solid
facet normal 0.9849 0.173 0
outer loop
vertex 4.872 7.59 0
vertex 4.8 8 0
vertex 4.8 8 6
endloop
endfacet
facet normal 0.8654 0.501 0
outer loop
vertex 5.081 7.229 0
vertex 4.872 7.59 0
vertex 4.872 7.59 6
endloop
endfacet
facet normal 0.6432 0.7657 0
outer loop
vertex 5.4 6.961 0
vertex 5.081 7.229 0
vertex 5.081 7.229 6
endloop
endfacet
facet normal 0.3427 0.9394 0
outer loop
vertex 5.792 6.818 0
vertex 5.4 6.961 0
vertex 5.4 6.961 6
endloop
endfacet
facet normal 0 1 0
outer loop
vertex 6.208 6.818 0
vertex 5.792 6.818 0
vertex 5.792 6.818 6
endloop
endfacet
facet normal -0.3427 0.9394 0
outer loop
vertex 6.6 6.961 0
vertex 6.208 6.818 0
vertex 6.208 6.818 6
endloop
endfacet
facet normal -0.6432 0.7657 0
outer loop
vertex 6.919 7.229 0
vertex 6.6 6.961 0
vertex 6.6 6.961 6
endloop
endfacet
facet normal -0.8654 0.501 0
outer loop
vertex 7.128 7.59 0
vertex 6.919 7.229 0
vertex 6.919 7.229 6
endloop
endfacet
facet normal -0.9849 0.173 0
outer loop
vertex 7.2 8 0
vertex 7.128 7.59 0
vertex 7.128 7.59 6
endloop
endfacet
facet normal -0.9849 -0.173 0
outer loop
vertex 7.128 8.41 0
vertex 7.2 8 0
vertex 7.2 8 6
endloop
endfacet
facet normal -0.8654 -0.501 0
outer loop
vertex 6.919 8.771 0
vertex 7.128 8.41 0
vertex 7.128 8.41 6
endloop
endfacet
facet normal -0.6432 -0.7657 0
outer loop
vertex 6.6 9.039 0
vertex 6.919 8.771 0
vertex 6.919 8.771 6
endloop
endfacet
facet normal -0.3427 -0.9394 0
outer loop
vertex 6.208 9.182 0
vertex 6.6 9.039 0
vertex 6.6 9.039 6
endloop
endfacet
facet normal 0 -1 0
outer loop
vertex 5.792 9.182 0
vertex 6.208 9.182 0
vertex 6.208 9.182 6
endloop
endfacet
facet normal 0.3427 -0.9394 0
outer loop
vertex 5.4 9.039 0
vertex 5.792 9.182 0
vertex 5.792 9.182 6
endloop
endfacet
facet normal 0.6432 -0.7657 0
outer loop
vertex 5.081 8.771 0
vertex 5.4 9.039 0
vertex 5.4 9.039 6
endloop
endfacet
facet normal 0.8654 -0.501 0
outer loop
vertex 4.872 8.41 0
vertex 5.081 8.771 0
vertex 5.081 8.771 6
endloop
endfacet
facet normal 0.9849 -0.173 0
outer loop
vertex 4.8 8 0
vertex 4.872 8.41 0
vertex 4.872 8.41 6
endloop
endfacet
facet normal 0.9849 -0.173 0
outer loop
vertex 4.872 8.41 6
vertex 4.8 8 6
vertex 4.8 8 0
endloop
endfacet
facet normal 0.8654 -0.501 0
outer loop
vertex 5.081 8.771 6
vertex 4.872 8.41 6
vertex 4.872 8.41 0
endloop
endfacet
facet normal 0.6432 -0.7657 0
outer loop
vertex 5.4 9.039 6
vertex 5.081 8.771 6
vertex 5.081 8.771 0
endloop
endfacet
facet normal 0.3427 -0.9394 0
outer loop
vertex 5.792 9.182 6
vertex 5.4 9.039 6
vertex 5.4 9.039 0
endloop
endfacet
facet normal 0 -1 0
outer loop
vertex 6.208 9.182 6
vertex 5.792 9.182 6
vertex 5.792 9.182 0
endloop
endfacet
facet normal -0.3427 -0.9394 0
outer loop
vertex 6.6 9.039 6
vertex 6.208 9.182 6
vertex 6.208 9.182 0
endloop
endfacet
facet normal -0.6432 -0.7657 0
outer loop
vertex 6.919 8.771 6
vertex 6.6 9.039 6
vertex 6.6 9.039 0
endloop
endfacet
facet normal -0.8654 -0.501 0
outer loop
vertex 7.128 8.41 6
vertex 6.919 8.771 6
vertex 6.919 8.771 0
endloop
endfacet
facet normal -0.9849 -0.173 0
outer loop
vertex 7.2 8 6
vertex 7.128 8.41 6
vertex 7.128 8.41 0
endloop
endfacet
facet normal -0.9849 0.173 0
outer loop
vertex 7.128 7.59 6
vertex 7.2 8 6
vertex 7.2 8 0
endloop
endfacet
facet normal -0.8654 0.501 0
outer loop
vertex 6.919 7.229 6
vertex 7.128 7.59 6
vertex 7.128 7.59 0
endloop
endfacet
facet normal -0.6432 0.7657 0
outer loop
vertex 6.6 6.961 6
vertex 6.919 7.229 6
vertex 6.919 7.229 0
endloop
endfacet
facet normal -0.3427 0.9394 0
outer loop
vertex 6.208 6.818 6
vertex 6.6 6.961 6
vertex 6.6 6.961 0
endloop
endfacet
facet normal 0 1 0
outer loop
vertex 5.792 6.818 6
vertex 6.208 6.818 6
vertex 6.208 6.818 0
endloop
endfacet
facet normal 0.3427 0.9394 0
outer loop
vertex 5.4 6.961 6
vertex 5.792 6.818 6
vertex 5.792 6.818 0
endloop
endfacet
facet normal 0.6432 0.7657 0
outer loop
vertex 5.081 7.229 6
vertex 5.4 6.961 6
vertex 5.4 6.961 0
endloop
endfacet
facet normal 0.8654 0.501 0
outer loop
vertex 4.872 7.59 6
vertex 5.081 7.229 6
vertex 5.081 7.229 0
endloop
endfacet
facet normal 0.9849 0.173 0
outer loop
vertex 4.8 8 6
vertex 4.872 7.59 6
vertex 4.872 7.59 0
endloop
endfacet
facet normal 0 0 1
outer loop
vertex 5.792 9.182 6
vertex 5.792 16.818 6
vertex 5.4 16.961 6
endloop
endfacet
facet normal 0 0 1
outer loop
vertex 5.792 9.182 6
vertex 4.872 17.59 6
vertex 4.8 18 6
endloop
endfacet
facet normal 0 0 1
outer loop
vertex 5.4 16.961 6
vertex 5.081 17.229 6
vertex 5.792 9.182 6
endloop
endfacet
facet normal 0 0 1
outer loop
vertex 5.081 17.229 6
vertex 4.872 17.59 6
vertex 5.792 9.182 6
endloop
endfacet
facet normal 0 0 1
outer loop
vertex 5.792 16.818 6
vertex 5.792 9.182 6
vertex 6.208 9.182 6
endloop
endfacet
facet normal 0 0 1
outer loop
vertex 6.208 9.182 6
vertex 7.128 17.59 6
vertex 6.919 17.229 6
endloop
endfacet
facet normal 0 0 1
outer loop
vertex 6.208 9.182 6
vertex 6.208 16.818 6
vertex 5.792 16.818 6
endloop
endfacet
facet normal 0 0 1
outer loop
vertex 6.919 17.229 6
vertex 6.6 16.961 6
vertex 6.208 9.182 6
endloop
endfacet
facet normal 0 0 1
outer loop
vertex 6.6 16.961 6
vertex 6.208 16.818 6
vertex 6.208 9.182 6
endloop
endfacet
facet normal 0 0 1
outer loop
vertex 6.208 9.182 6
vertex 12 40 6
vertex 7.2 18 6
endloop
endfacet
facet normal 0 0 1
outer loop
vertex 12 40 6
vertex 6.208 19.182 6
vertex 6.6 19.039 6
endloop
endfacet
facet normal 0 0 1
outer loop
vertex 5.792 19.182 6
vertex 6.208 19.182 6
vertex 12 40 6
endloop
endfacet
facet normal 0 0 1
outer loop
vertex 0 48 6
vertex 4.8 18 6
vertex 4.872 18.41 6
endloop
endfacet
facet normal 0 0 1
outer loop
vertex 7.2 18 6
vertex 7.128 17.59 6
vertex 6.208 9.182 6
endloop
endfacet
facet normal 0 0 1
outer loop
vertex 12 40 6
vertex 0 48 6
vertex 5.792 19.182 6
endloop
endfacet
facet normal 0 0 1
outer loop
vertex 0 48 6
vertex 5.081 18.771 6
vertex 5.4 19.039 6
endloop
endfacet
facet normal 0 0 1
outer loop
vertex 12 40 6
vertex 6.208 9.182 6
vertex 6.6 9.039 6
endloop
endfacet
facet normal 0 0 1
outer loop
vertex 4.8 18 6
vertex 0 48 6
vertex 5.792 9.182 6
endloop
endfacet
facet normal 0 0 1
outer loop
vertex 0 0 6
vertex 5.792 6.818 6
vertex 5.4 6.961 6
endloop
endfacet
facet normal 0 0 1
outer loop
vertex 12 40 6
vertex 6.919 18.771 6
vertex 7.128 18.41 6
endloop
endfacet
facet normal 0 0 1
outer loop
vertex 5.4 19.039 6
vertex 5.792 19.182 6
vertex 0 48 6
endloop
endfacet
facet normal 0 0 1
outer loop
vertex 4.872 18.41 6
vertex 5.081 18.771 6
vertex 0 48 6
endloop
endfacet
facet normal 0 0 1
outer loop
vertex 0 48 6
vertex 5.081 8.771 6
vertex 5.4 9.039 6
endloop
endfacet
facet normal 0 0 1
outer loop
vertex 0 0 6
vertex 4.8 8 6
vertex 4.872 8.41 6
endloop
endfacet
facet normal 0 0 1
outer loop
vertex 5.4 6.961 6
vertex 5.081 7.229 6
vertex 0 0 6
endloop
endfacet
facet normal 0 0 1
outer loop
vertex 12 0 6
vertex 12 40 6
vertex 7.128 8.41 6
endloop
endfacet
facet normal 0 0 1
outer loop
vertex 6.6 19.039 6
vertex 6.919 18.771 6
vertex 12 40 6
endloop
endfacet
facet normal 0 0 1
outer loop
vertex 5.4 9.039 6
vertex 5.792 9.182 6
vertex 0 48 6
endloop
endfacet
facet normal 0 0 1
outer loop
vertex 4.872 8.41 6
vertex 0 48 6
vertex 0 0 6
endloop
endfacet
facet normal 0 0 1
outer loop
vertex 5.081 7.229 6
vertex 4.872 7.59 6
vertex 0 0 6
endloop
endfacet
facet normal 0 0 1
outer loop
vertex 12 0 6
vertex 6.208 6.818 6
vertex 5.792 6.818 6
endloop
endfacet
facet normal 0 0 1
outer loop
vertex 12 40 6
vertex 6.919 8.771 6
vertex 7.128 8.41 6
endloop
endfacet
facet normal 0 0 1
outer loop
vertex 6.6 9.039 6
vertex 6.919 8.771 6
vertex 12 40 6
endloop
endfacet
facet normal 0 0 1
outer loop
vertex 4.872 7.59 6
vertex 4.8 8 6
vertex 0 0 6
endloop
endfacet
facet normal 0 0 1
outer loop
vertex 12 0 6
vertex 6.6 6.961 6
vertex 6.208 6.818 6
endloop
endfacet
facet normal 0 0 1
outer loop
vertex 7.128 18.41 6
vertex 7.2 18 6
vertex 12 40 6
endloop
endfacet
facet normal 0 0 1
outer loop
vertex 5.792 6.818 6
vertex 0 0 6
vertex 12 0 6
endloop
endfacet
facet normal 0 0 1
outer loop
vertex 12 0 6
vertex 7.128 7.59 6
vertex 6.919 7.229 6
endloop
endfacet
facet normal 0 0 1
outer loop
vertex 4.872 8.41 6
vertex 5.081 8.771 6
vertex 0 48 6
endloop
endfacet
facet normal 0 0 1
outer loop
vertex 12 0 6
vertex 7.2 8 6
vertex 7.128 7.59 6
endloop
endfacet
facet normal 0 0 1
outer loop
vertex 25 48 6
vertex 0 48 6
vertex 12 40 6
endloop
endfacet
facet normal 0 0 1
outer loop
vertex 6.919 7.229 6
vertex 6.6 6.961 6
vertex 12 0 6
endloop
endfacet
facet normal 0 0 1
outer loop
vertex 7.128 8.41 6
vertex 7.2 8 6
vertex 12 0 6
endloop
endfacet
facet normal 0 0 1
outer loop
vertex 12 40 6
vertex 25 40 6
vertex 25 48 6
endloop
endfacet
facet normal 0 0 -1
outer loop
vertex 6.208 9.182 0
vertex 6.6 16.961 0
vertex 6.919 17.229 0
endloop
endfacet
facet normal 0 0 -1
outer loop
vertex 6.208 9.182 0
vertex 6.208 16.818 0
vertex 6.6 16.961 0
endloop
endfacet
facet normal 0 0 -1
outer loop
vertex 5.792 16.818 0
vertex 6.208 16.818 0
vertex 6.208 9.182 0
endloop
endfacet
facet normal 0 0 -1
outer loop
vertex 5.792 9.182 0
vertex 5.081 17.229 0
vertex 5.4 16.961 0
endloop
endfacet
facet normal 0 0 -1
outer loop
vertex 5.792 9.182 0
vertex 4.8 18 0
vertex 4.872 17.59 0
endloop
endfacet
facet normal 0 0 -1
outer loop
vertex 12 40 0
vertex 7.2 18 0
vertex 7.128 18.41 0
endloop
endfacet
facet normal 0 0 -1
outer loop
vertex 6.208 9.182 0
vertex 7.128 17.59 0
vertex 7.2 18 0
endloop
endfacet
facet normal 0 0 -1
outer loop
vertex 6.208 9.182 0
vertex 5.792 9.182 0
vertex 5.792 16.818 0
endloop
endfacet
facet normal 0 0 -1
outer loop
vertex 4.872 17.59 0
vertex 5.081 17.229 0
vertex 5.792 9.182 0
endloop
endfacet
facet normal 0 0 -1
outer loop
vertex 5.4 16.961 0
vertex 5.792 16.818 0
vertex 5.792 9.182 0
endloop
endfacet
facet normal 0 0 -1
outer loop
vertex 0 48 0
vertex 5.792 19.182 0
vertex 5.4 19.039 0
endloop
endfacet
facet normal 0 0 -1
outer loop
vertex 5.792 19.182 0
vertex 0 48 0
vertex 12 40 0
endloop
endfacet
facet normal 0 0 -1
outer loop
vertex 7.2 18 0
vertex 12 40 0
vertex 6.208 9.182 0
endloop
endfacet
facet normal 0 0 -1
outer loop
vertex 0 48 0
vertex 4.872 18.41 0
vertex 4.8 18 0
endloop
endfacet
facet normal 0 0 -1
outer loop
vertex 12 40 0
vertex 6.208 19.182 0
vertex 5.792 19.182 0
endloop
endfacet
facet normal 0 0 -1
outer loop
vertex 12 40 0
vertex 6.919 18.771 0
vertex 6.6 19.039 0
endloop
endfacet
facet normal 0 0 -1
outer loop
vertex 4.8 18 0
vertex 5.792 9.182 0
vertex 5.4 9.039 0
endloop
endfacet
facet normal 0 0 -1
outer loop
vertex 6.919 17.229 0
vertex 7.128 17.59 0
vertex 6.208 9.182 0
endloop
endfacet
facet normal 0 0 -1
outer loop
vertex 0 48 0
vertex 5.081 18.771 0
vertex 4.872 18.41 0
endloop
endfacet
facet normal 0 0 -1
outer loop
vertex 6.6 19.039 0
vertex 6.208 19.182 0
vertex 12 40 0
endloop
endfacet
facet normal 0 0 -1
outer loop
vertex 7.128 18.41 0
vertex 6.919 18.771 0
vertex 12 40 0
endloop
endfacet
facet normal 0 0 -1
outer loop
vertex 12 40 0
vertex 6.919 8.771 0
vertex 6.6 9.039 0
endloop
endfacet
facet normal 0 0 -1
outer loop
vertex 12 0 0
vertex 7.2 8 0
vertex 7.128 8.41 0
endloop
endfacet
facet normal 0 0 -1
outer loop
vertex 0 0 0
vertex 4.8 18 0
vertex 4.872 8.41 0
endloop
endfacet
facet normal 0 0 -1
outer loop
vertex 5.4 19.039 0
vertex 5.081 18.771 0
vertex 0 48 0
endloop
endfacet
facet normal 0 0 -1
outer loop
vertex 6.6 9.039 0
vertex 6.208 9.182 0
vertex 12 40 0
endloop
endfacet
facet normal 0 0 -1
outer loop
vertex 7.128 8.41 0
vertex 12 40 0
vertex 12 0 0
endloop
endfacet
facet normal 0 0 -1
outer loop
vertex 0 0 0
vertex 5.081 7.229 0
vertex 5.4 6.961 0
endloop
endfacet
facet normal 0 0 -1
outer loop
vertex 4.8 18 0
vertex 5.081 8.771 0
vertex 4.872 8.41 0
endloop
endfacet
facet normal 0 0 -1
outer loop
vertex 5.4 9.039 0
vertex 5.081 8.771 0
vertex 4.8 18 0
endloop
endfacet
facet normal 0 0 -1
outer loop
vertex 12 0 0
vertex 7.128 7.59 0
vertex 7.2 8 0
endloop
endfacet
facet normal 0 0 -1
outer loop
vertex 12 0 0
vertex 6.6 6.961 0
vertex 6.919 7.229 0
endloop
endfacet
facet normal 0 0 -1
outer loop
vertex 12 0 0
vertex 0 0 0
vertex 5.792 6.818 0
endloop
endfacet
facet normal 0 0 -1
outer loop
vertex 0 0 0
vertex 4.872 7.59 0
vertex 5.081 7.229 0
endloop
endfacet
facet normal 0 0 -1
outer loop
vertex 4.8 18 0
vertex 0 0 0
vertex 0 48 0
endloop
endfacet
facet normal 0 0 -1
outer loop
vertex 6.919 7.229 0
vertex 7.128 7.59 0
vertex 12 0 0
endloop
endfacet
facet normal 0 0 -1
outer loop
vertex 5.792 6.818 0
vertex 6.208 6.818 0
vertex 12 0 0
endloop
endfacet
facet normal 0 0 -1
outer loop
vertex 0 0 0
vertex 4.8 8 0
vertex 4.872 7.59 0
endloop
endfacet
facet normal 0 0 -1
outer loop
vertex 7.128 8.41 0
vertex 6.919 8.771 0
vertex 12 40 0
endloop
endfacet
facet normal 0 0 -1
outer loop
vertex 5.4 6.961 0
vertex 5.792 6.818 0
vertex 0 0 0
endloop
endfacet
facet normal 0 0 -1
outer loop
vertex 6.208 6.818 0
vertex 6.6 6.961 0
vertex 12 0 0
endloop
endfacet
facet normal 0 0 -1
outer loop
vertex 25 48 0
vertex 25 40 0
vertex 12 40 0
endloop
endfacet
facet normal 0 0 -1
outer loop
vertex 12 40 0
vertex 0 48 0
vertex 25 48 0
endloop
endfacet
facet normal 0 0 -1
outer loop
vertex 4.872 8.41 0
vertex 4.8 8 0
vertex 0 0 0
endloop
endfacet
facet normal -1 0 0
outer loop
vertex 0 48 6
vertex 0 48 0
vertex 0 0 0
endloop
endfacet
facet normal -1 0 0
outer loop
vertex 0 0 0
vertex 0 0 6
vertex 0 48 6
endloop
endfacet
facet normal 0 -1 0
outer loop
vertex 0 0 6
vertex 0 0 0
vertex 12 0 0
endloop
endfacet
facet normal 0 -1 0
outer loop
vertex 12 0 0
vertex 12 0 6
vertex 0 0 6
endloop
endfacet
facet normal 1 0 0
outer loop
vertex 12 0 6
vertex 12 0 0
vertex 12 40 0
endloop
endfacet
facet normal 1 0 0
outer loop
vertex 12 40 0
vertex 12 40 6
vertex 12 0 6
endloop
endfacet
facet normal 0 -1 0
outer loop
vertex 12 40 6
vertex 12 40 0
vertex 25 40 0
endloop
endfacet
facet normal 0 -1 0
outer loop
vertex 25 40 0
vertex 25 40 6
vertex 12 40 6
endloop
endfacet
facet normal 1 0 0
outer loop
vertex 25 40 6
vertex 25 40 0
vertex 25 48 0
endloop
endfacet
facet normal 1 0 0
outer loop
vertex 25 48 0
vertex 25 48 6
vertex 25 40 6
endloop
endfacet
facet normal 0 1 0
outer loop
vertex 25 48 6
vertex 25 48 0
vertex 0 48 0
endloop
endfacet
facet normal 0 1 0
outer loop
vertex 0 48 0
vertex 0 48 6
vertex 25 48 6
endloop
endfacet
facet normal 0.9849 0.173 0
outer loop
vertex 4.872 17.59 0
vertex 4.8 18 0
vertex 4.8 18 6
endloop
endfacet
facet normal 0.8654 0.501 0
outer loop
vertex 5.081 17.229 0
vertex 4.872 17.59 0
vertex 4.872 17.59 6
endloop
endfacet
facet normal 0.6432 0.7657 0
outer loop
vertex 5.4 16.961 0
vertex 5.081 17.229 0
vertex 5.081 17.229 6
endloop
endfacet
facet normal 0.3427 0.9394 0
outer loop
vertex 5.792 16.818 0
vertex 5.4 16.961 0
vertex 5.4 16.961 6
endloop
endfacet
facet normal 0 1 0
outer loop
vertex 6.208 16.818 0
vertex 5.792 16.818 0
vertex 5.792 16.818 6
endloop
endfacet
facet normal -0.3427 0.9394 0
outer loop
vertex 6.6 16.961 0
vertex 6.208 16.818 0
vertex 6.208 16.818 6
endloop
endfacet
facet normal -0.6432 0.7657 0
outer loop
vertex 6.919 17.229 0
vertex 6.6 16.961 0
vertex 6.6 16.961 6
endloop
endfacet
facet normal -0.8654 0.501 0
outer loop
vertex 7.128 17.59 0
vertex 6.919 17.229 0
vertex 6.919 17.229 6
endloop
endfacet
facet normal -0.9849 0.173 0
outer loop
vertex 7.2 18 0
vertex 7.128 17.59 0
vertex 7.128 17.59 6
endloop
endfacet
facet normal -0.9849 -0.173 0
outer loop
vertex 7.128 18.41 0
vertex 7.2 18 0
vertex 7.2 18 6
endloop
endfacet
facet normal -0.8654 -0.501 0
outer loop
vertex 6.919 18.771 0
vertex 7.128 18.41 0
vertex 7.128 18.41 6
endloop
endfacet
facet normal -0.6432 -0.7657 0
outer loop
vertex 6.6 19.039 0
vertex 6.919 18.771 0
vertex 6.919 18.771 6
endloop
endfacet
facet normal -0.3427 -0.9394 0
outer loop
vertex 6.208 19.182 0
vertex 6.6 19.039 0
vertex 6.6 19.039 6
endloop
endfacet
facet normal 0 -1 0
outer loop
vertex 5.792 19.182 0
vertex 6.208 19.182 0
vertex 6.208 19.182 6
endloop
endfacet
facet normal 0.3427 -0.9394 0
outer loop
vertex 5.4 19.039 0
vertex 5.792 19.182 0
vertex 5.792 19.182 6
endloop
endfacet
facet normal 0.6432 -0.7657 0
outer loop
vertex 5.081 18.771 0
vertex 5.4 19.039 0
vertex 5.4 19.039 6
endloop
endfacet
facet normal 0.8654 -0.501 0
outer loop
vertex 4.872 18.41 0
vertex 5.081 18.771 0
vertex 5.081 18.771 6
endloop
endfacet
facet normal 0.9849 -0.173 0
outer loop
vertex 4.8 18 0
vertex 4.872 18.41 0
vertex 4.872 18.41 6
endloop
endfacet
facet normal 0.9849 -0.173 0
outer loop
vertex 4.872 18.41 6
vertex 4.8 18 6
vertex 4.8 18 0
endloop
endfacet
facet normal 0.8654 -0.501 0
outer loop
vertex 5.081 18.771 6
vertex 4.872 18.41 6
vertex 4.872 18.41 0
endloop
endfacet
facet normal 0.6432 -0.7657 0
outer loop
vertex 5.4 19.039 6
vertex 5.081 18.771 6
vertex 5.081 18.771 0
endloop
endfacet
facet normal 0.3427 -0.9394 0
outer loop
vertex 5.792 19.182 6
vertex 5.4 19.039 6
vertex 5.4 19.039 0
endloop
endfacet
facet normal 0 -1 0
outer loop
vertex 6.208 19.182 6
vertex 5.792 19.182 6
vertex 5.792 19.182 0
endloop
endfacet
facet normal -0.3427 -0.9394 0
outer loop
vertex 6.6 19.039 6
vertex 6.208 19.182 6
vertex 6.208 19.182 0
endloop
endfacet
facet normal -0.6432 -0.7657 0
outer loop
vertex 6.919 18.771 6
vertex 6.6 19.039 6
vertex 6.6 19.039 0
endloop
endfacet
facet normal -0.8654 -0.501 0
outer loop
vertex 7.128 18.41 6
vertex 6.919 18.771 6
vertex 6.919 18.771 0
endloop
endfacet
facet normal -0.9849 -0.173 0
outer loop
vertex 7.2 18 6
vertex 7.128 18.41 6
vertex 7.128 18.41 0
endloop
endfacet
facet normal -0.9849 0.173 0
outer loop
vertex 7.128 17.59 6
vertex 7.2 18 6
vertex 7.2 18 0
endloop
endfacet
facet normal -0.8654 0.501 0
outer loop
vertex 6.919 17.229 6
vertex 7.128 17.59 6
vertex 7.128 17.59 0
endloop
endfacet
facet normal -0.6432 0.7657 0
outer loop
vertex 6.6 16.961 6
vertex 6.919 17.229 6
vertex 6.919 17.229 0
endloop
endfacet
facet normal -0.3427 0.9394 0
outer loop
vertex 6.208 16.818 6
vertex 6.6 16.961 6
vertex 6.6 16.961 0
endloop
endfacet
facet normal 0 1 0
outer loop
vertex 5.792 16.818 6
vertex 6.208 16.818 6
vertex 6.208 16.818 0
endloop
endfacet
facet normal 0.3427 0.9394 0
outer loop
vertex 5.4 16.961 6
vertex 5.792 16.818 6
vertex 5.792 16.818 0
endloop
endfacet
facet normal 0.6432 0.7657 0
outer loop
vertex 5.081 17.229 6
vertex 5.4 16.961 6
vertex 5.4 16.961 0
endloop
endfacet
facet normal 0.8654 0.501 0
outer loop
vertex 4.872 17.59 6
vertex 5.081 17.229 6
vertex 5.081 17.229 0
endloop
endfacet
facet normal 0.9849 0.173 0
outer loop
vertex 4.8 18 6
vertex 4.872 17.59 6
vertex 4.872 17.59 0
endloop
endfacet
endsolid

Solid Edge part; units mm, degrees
sketch "Sketch1" plane through (0, 0, 0) normal (0, 0, 1) x (1, 0, 0)
  line L0 (0, 0) -> (12, 0)
  line L1 (12, 0) -> (12, 40)
  line L2 (12, 40) -> (25, 40)
  line L3 (25, 40) -> (25, 48)
  line L4 (25, 48) -> (0, 48)
  line L5 (0, 48) -> (0, 0)
  circle A0 centre (6, 8) radius 1.2
  circle A1 centre (6, 18) radius 1.2
extrude "Protrusion1" add sketch "Sketch1" along normal blind 6
